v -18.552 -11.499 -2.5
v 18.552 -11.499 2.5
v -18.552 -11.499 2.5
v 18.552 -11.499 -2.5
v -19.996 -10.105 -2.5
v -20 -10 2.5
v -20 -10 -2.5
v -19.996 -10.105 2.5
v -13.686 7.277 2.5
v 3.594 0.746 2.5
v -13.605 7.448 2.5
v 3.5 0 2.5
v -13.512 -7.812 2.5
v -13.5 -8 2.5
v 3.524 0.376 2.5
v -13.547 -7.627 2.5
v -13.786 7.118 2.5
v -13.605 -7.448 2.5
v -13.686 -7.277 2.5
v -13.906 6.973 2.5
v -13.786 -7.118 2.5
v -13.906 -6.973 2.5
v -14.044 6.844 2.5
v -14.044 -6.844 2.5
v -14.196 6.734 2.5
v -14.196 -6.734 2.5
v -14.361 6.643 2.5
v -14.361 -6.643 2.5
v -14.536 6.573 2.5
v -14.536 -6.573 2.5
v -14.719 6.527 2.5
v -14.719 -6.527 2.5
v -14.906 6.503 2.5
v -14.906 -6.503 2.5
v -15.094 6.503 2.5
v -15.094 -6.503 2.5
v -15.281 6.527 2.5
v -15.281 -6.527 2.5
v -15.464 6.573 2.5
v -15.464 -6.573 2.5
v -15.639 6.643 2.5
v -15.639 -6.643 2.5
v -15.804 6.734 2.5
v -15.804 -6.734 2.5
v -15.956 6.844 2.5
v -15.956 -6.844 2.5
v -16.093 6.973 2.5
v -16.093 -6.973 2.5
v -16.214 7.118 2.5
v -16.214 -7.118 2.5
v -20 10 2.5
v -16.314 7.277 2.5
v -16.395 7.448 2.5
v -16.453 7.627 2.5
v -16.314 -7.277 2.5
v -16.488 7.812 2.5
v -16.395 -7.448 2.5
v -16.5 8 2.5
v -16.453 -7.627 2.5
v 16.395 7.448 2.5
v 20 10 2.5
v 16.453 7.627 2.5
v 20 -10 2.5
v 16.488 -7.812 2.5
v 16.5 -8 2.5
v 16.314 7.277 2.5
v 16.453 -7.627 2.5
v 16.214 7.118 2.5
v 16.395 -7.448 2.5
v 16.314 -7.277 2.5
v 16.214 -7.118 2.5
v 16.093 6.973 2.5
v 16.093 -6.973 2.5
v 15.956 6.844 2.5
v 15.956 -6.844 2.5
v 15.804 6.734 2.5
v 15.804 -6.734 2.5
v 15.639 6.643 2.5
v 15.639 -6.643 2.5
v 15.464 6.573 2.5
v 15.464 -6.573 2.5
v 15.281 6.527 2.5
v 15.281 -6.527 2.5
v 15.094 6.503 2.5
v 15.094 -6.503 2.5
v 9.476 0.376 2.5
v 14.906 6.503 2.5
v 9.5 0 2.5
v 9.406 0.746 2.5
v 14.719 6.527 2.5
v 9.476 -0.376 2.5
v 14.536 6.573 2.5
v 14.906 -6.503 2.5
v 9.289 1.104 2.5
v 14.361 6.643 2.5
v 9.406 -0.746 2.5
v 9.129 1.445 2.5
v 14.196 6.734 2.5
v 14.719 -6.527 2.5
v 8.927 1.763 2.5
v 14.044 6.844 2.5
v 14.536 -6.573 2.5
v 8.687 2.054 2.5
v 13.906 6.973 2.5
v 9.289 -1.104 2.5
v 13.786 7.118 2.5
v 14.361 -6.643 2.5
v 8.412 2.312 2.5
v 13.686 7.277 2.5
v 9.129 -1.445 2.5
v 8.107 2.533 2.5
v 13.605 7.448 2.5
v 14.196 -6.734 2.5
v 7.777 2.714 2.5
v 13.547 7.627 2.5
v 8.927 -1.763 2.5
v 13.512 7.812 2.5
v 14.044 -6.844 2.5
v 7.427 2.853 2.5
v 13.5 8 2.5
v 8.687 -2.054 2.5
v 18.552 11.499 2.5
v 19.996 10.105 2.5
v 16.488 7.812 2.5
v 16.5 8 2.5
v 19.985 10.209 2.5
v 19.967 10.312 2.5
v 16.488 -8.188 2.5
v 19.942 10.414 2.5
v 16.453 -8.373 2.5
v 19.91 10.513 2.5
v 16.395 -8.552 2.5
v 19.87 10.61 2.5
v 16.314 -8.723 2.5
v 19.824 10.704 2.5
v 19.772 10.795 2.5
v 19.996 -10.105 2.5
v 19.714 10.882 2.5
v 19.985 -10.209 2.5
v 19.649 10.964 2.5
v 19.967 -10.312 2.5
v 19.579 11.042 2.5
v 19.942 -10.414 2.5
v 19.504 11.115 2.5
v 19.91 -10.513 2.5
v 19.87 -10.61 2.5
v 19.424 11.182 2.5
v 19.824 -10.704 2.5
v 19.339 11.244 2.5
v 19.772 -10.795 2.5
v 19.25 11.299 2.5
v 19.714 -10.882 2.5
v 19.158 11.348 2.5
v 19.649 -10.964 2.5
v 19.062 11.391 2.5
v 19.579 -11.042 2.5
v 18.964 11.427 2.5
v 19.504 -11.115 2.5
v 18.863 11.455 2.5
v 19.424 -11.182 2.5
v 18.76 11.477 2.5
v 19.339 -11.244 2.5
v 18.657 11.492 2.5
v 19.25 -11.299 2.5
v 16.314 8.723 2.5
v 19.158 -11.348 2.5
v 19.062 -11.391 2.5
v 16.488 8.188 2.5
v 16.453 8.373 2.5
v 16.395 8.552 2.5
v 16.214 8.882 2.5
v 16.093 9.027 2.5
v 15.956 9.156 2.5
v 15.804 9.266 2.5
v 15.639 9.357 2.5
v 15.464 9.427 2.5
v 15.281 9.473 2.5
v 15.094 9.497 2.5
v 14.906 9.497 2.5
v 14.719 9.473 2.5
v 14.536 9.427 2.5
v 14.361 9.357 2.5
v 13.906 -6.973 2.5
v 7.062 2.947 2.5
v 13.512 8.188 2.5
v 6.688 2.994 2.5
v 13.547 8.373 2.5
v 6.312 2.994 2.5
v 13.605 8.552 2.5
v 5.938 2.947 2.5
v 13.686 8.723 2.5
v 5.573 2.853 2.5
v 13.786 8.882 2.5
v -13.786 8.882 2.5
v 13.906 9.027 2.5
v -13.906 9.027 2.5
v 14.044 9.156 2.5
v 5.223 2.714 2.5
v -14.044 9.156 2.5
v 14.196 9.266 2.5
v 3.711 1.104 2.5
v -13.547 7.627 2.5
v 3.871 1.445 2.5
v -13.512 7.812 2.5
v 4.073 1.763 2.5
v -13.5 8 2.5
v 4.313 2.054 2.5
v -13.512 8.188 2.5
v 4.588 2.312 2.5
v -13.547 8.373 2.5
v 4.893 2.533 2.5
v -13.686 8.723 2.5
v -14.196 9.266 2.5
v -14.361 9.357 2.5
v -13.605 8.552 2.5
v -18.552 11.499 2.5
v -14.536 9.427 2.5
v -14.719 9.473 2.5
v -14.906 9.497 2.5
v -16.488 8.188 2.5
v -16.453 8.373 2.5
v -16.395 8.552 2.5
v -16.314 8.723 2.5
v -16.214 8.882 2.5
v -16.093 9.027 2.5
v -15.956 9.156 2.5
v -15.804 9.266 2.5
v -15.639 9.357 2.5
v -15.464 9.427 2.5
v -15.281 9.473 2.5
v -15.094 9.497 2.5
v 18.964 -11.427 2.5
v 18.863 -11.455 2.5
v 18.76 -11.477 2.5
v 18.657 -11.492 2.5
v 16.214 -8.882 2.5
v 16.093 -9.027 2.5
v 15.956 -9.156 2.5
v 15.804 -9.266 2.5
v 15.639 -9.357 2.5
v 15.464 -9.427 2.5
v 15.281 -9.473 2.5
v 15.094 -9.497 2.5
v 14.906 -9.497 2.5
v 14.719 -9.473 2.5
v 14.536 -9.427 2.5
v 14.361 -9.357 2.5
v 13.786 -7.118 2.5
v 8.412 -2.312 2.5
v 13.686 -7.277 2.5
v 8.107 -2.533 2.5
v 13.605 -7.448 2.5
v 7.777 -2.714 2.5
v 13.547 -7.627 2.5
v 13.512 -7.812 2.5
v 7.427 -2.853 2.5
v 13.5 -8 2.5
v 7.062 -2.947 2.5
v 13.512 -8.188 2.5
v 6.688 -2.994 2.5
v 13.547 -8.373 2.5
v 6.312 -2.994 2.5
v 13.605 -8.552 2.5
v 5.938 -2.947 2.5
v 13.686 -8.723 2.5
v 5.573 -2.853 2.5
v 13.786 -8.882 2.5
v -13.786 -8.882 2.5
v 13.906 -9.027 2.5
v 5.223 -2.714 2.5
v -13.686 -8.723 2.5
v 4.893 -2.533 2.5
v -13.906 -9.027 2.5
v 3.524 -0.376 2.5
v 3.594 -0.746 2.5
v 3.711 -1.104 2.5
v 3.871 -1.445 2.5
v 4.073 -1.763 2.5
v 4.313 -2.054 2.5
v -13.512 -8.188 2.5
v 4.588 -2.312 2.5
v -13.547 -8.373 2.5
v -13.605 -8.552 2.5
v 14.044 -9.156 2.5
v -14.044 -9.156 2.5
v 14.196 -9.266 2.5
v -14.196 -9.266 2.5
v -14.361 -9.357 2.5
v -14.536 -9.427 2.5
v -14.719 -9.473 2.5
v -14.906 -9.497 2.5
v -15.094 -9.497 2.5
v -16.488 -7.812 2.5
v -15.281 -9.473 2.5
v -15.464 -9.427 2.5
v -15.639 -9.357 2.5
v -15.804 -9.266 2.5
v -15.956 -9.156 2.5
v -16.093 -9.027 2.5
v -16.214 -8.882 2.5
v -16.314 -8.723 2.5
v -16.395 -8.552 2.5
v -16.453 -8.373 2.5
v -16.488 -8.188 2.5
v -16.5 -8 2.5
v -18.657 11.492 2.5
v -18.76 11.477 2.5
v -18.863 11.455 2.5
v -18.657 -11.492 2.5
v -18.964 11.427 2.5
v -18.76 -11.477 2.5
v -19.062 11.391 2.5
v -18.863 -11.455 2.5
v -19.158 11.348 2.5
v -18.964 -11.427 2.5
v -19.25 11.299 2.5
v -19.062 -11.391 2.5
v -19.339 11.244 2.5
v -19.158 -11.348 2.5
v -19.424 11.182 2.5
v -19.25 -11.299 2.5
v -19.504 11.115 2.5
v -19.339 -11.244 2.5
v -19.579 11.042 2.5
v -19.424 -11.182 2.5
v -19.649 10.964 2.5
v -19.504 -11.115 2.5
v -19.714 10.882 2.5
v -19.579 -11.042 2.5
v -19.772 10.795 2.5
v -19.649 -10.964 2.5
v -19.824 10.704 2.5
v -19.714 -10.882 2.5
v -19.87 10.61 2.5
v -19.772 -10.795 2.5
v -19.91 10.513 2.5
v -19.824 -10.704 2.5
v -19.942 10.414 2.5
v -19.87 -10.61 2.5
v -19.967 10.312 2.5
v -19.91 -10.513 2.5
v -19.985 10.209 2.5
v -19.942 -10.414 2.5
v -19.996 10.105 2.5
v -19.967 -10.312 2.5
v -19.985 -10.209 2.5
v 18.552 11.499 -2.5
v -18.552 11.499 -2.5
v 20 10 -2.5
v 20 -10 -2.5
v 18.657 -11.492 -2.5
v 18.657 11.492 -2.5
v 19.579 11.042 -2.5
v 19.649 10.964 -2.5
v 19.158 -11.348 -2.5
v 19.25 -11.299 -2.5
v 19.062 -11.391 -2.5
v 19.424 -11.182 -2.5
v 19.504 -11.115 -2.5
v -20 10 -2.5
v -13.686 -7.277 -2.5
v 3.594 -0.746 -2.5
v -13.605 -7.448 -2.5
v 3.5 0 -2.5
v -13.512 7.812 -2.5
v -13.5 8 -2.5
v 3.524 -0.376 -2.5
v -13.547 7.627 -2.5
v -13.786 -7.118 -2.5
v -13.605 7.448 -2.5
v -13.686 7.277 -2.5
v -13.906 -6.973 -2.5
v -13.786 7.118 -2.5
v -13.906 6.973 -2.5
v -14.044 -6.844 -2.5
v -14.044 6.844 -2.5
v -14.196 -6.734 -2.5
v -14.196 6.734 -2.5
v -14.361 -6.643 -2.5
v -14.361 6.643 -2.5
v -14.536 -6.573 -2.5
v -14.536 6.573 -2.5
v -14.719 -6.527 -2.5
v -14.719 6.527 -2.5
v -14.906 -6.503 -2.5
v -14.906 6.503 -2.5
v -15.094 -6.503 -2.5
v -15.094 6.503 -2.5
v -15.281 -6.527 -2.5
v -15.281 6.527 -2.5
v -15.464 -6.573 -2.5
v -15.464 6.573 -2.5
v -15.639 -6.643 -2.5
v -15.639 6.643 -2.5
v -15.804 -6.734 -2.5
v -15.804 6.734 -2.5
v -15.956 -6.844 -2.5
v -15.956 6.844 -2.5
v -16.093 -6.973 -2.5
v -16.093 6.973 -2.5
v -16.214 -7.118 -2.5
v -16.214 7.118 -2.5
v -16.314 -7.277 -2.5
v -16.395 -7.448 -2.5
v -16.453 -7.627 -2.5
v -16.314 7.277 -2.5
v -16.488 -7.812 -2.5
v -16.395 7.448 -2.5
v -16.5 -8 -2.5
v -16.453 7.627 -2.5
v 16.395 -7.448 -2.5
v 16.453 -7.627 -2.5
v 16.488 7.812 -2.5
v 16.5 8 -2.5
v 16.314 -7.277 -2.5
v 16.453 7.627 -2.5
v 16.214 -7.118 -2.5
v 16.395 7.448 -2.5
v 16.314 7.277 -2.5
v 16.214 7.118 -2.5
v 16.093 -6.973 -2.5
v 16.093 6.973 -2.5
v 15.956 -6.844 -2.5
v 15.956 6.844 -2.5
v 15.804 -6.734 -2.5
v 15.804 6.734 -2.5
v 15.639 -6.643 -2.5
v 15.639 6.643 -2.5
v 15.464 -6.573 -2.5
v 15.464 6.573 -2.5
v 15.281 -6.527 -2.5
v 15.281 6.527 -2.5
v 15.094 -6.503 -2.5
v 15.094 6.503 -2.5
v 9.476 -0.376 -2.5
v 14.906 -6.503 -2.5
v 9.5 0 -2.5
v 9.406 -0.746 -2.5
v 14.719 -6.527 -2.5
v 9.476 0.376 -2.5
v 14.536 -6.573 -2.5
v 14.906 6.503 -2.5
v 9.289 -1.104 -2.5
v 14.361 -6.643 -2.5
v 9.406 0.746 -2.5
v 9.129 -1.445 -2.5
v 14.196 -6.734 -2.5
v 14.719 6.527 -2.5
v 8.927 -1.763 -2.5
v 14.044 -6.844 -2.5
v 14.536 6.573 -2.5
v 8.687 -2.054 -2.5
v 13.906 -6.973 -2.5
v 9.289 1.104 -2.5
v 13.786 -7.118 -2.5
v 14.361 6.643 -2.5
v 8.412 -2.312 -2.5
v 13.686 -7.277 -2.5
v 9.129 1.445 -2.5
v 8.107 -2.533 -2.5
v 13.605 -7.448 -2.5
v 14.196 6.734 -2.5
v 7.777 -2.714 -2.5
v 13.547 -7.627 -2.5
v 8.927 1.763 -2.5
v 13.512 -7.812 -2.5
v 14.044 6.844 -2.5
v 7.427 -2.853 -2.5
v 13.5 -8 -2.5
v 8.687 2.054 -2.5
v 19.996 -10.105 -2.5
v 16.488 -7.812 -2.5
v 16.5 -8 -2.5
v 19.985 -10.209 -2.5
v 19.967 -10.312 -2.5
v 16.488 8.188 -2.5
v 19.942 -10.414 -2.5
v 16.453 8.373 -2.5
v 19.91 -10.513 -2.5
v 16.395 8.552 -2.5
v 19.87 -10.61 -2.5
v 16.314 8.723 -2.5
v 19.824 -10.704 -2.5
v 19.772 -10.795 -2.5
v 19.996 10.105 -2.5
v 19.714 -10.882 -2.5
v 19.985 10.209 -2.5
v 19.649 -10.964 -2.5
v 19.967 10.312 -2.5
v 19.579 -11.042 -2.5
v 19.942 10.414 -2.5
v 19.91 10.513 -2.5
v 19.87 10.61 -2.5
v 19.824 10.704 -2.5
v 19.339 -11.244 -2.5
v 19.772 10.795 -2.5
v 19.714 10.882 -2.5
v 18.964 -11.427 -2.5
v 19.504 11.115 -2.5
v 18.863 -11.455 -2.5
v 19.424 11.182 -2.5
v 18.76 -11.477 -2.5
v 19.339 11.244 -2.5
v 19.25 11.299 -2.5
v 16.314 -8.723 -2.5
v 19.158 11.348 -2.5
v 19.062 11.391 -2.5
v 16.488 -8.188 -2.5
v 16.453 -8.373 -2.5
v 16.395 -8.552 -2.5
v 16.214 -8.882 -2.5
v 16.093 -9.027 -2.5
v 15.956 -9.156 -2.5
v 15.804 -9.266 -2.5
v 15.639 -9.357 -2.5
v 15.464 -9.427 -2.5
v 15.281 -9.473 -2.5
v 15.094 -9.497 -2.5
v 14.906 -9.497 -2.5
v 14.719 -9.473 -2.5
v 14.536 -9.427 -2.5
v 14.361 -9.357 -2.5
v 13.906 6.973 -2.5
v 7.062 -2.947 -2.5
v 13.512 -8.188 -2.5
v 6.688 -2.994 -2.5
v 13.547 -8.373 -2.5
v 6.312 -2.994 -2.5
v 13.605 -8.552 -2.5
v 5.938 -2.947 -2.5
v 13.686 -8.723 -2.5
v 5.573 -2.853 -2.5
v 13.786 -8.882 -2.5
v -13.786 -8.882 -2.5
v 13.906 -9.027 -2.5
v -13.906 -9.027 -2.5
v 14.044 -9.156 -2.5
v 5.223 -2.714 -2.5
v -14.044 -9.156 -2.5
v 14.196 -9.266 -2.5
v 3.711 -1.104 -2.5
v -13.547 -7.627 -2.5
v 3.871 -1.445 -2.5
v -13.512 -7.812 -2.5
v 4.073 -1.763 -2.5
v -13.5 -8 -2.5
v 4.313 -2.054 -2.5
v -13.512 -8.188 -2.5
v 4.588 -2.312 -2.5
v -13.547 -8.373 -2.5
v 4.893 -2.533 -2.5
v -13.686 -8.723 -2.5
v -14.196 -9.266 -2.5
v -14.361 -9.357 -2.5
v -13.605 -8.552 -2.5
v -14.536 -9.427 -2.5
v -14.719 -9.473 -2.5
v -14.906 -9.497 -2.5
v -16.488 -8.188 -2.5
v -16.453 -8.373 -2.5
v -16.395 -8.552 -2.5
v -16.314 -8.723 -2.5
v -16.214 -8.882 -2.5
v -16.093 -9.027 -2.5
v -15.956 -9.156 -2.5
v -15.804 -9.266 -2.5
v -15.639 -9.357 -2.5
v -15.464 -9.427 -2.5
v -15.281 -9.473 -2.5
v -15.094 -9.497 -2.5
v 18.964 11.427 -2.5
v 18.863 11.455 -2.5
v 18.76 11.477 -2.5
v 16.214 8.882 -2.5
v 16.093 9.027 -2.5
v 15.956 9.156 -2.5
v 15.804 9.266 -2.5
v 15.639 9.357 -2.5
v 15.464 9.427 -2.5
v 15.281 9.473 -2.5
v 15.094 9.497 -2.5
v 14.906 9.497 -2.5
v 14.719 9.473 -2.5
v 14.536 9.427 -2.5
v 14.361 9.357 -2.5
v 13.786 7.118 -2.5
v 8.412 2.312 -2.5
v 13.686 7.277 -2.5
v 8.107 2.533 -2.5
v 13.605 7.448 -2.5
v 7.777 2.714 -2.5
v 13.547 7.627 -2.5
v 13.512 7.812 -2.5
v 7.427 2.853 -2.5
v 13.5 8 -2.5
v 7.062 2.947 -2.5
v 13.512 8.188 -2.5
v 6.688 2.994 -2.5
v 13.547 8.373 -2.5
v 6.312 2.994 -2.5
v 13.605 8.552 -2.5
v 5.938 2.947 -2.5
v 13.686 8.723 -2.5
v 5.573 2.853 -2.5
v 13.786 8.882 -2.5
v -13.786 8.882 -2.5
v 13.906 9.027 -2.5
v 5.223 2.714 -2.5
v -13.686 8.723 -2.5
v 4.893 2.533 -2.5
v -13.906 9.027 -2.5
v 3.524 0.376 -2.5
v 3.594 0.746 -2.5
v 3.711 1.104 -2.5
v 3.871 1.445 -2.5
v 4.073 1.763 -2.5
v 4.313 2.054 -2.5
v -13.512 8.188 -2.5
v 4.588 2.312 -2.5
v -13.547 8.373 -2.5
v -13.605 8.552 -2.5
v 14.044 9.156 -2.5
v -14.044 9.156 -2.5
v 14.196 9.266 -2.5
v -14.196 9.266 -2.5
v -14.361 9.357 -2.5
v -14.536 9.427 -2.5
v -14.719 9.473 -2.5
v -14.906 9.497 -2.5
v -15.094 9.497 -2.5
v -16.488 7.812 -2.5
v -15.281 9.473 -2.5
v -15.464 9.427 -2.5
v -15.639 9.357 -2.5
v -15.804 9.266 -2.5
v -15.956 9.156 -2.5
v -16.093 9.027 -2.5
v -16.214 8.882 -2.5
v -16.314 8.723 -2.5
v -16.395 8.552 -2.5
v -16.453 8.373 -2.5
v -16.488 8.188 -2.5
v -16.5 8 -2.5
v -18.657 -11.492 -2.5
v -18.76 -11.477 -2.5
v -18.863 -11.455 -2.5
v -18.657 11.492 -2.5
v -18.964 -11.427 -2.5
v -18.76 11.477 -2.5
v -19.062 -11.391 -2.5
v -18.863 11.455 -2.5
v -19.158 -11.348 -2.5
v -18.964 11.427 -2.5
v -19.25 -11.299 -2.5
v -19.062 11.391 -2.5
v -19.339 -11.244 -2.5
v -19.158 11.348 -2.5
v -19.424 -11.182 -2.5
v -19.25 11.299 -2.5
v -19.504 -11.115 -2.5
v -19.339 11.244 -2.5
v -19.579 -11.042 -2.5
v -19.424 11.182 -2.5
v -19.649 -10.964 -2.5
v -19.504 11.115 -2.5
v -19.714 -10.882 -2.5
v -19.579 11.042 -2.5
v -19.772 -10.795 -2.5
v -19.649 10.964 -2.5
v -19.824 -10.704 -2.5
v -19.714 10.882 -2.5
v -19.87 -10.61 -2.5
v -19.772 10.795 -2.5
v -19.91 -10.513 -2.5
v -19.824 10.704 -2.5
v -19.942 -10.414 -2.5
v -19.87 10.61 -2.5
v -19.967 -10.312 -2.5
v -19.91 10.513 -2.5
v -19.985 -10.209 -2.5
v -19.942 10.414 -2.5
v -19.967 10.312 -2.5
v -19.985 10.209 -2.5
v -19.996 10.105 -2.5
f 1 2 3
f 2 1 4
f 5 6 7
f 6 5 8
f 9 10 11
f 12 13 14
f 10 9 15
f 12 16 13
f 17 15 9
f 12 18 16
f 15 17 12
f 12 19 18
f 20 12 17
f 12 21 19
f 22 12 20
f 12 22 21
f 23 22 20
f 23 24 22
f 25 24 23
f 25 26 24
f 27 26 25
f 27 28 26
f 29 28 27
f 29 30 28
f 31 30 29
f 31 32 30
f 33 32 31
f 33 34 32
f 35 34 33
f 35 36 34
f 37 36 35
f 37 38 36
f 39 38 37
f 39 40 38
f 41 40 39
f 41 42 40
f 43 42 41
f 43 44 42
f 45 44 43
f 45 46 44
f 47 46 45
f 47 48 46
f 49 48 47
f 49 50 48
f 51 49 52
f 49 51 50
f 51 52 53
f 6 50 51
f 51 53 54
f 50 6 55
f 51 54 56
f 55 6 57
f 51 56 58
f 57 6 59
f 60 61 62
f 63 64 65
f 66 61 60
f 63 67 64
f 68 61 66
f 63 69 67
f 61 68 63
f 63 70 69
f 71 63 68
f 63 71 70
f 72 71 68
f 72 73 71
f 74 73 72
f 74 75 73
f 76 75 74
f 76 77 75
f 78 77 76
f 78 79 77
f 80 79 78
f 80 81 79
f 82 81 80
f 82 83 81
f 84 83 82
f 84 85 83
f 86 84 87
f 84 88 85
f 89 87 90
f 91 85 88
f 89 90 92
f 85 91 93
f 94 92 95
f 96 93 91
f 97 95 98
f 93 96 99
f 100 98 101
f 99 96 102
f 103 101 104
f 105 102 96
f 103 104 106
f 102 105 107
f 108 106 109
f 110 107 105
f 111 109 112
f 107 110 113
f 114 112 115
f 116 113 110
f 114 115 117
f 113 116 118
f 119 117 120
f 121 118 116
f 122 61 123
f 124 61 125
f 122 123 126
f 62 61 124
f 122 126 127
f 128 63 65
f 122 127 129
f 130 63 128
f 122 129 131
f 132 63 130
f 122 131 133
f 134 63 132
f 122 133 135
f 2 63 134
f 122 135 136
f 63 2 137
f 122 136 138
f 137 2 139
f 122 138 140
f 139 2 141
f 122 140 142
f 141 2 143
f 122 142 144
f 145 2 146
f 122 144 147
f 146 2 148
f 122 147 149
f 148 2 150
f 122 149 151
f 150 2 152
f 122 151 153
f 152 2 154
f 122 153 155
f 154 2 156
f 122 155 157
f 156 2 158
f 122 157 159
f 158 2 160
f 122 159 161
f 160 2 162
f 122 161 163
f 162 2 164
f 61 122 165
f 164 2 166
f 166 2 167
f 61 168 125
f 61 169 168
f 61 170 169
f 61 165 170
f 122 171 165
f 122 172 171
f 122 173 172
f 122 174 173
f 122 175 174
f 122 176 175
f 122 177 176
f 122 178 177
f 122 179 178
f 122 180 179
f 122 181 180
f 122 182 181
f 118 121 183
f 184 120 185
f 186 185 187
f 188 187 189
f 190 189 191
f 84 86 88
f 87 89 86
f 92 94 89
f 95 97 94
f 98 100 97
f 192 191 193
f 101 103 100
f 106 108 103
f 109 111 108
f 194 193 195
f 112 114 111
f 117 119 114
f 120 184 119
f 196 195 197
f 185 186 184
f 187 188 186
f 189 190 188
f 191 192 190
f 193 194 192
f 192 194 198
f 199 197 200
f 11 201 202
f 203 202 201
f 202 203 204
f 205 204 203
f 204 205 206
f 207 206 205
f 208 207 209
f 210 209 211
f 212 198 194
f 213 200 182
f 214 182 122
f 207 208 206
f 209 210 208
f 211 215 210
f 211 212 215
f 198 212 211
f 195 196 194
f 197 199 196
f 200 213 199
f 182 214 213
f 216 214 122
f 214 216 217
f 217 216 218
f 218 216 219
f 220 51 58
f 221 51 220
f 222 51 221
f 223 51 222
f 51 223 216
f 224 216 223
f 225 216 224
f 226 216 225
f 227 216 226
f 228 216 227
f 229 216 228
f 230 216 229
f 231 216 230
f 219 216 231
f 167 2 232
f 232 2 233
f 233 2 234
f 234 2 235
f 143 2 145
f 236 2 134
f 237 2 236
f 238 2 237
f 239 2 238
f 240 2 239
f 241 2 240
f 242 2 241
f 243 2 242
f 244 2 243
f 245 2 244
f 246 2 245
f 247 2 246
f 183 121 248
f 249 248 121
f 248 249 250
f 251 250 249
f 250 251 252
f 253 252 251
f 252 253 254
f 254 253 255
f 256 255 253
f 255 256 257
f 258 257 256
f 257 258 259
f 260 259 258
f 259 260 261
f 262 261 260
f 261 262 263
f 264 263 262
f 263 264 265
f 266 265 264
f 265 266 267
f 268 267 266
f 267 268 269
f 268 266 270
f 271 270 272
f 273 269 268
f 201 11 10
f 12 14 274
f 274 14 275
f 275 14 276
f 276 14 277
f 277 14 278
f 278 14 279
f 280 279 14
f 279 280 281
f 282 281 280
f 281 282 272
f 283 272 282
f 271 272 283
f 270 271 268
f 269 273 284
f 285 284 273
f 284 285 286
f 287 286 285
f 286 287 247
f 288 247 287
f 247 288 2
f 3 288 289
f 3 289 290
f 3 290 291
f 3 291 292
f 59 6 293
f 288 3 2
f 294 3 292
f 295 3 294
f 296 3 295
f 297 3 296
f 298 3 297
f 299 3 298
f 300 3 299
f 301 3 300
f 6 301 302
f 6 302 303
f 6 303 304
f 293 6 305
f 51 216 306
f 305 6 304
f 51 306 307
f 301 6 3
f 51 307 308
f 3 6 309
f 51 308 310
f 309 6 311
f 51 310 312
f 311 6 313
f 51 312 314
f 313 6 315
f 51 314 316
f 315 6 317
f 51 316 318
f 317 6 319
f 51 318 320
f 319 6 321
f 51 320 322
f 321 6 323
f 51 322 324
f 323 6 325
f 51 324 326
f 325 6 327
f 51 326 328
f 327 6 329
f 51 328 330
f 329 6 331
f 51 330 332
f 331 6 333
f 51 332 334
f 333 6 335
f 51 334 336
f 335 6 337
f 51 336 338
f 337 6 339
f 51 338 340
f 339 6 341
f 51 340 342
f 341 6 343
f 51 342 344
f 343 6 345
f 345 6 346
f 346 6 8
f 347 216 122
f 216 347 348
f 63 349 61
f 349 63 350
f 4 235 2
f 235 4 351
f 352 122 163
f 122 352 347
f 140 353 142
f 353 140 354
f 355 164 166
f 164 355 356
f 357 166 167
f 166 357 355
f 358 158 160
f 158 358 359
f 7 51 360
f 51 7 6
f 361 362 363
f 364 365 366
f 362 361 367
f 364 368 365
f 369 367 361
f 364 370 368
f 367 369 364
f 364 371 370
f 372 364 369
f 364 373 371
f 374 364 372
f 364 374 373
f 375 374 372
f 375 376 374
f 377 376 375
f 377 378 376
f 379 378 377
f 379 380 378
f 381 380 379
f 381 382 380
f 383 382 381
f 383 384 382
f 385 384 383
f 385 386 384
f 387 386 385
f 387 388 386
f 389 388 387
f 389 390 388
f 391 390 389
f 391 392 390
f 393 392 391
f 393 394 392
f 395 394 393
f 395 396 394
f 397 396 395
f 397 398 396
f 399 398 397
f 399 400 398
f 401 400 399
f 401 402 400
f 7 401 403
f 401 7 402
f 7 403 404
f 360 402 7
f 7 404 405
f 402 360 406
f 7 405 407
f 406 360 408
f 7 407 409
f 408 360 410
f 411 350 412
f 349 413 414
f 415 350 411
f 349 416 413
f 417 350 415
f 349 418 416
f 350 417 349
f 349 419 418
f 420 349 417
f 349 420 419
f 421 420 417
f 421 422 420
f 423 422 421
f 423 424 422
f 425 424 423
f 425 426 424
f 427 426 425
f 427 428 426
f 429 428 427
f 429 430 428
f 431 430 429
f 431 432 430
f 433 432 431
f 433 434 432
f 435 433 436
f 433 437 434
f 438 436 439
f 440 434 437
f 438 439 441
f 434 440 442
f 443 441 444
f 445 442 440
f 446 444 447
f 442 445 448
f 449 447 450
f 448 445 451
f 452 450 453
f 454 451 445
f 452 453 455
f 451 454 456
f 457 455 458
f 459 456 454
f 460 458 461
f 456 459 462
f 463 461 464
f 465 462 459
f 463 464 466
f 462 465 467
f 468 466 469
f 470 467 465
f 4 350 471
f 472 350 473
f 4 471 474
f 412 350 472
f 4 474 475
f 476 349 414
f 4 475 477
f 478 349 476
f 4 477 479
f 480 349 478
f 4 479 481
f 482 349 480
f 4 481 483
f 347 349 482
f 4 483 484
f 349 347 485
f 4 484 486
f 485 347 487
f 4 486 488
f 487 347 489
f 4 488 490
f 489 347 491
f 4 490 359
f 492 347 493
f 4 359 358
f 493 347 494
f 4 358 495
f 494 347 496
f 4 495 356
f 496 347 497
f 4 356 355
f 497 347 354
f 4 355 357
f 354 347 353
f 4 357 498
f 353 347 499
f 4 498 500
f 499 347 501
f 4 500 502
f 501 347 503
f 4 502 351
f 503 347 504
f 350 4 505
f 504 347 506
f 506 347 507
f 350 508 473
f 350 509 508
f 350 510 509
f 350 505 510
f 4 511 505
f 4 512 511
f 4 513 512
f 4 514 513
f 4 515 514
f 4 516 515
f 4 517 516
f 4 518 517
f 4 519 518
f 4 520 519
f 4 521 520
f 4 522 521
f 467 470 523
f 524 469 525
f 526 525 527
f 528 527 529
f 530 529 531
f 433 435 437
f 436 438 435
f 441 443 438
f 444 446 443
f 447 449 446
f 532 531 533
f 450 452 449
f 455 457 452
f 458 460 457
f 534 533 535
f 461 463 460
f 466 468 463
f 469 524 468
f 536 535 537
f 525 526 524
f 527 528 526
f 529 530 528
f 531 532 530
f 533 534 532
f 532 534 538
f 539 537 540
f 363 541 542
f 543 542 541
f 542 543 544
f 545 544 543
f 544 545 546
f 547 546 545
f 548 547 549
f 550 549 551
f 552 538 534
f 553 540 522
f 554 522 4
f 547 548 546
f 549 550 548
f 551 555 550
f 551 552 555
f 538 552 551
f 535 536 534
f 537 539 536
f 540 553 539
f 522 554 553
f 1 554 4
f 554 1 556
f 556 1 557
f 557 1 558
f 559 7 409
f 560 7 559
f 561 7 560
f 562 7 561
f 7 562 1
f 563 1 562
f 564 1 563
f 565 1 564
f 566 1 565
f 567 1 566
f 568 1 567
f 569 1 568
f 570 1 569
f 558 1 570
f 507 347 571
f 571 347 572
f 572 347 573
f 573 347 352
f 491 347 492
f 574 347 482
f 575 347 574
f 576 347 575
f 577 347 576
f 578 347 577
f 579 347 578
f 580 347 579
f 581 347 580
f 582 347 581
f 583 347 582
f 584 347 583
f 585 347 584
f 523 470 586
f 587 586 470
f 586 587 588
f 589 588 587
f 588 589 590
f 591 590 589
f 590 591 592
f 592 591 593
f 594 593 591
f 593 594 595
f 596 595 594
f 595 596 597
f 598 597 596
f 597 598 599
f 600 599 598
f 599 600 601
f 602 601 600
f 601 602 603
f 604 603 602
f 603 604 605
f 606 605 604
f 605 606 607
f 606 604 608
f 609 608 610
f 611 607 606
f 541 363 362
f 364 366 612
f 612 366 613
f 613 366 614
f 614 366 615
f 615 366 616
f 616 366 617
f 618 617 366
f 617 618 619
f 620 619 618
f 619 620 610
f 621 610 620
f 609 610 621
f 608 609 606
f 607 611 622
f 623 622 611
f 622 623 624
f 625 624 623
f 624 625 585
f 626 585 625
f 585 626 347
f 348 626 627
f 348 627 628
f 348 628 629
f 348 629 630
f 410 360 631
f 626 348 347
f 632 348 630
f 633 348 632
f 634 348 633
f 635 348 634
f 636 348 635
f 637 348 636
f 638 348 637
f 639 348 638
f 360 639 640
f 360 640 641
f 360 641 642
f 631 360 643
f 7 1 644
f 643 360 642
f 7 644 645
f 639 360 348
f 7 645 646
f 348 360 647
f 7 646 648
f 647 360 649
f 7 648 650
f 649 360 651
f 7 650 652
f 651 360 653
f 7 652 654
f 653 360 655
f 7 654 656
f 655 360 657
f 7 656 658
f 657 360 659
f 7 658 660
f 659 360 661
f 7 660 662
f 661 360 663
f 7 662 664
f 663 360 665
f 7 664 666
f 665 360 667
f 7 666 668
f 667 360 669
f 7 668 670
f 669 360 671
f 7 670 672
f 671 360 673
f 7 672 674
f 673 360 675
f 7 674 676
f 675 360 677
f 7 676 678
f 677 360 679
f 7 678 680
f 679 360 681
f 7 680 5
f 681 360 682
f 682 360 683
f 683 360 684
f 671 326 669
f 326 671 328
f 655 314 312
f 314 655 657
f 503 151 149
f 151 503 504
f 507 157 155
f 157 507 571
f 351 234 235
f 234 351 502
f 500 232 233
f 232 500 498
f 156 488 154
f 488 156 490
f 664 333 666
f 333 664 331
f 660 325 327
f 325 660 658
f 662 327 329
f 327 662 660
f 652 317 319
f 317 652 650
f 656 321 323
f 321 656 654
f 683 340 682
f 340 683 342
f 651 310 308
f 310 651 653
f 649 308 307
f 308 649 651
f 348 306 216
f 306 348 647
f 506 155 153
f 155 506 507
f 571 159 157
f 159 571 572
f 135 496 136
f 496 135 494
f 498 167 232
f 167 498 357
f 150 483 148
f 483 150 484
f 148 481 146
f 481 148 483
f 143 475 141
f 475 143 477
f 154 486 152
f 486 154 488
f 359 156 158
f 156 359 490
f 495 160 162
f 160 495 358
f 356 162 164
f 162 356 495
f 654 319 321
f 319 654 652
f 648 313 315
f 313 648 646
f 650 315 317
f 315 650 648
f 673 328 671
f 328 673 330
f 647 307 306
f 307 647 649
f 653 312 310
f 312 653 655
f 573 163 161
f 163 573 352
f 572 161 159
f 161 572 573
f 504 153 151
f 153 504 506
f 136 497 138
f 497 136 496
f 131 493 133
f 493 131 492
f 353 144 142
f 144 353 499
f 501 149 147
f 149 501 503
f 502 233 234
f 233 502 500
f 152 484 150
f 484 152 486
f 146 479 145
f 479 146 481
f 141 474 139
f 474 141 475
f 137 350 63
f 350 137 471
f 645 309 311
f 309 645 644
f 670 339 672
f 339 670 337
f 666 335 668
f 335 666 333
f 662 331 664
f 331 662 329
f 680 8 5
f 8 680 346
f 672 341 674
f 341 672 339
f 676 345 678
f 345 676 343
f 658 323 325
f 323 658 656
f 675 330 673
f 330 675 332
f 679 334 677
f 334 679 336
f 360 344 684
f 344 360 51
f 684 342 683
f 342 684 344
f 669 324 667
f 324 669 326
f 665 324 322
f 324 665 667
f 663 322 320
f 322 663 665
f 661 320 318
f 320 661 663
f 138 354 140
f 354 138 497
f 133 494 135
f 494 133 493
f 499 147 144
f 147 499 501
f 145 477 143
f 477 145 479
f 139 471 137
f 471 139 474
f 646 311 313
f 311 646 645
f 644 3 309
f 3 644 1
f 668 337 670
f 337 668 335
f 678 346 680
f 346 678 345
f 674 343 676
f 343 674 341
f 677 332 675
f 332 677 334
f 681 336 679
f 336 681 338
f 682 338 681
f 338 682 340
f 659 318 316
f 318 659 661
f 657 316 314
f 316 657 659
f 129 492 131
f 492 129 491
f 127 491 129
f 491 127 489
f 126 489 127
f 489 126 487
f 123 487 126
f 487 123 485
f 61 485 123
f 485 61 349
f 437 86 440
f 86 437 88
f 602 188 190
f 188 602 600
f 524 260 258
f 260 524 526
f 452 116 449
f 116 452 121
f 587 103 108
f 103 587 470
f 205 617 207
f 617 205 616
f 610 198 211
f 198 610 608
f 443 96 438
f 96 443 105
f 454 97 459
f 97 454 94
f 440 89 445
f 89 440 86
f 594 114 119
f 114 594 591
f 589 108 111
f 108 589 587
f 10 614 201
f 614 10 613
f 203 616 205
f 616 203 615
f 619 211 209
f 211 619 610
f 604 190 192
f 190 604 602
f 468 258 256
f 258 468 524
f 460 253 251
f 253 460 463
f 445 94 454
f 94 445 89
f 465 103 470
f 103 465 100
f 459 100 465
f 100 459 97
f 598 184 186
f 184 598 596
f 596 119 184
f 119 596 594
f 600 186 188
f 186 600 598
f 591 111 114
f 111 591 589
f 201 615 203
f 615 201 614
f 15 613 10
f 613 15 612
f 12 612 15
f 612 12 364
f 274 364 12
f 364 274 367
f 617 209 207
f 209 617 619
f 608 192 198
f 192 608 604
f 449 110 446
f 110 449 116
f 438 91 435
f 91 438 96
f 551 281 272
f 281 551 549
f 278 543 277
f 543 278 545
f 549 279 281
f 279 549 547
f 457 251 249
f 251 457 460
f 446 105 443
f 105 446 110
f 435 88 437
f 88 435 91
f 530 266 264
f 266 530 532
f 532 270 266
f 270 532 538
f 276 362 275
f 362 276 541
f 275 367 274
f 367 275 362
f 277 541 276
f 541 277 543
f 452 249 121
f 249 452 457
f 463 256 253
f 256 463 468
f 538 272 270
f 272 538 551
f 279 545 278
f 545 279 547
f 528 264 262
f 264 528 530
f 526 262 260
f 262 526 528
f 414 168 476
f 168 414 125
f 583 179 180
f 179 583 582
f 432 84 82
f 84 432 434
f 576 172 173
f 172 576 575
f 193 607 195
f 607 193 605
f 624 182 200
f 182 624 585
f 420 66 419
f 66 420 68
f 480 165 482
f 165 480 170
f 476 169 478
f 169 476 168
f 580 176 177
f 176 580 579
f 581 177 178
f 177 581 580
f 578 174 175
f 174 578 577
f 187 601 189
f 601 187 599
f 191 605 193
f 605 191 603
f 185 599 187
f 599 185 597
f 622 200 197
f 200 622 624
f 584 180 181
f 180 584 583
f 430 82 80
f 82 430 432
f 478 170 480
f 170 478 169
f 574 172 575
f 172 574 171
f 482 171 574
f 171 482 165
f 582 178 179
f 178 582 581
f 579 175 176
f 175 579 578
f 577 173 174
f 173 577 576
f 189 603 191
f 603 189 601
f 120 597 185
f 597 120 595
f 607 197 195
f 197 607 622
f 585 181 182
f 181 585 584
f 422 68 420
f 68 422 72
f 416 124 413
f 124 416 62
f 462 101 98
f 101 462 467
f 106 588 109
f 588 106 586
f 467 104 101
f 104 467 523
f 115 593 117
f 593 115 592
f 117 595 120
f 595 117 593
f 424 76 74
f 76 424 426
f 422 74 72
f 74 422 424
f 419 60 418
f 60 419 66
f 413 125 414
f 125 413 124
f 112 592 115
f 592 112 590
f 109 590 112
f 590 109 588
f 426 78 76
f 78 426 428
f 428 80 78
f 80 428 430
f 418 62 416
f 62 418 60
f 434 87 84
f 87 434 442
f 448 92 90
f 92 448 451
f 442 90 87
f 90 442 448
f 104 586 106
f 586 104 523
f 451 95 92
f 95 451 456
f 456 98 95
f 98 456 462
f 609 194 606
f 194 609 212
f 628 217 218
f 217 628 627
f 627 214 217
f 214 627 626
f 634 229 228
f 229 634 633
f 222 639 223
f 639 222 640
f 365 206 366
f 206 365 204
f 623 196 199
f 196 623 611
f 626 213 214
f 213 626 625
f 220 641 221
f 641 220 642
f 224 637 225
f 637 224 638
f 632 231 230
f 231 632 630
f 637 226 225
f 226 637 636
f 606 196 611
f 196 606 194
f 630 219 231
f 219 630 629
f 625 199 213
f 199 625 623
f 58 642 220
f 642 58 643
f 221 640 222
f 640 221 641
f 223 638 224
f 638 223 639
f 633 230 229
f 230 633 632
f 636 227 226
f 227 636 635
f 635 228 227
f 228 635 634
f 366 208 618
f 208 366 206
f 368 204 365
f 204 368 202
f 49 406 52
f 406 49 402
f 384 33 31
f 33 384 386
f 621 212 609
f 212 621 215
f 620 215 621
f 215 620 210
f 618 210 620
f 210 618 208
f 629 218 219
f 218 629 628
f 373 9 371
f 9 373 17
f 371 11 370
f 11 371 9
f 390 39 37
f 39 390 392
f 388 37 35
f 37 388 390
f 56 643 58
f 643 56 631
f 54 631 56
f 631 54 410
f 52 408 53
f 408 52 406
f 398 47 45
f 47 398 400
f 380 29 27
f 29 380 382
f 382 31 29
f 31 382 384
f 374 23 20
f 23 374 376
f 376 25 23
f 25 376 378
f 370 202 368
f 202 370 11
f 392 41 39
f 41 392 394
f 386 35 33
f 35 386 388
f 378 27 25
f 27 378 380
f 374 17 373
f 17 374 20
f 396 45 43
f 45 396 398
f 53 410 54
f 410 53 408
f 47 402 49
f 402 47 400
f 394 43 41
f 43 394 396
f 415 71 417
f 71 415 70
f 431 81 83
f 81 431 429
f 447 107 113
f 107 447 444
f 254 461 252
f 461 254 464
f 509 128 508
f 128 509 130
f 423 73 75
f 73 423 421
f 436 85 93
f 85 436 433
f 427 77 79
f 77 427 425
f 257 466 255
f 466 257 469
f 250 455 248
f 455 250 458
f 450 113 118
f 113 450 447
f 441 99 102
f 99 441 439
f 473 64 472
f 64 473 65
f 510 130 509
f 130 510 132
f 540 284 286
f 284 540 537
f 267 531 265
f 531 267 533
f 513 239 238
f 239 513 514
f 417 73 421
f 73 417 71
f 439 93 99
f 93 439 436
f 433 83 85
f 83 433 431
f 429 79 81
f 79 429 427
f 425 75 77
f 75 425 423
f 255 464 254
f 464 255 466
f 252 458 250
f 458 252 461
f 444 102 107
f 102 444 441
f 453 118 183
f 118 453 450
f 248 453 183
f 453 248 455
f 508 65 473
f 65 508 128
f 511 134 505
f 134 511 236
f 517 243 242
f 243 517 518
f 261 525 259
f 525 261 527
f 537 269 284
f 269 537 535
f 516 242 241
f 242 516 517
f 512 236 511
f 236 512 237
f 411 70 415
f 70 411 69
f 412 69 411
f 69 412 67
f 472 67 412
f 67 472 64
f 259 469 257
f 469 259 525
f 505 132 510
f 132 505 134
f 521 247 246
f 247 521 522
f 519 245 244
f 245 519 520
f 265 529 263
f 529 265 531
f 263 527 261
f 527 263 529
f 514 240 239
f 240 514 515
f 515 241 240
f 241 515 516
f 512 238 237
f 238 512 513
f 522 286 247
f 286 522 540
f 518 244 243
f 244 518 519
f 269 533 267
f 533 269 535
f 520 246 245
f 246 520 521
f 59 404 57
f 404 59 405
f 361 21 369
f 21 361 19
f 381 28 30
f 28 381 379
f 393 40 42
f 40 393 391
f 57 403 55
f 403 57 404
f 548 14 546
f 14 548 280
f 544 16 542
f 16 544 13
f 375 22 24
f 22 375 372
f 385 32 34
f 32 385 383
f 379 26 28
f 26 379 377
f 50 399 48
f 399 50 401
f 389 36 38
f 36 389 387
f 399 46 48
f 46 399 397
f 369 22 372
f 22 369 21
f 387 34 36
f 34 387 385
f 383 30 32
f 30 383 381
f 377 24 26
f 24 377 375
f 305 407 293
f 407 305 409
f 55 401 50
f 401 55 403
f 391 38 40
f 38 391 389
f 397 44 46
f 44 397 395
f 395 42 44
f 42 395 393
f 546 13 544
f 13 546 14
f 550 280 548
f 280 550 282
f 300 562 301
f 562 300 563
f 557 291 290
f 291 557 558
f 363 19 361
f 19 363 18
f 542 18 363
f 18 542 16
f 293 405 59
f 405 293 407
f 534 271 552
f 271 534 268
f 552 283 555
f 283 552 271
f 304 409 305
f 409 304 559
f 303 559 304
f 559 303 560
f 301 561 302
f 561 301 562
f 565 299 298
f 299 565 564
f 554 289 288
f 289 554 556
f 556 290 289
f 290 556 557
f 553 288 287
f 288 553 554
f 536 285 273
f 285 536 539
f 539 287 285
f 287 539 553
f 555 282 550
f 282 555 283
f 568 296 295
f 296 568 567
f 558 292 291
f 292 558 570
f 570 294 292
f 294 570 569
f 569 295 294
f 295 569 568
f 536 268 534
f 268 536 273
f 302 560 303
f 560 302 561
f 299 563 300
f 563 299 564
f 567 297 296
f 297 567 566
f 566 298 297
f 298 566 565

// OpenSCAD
// file: ../../../quick_modules.scad
// Quick Modules

module roundedRect(xWidth, yDepth, zHeight, diam){
    hull(){
        translate([diam/2, diam/2, 0]) cylinder(d=diam, h=zHeight, $fn=90);
        translate([xWidth-(diam/2), diam/2, 0]) cylinder(d=diam, h=zHeight, $fn=90);
        
        translate([diam/2, yDepth-(diam/2), 0]) cylinder(d=diam, h=zHeight, $fn=90);
        translate([xWidth-(diam/2), yDepth-(diam/2), 0]) cylinder(d=diam, h=zHeight, $fn=90);
    }
}

module centeredRoundedRect(xWidth, yDepth, zHeight, diam){
    translate([-xWidth/2, -yDepth/2, -zHeight/2]) roundedRect(xWidth, yDepth, zHeight, diam);
}

//translate([25, 25, 0]) roundedRect(10, 10, 10, 1);
//centeredRoundedRect(10, 10, 10, 1);
// main file
// Bowden adapter for printrbot alu extruder

screwDiam = 3;
thickness = 5;
holeRes = 50;
pushfitDiam = 6; //6 for M6 pushfit

use <../../../quick_modules.scad>;

union(){
    difference(){
        centeredRoundedRect(40,23,thickness,3);
        
        // pushfit hole
        translate([6.5,0,-1]) cylinder(d=pushfitDiam,h=thickness*2,$fn=holeRes,center=true);
        
        // screw holes
        translate([15,8,-1]) cylinder(d=screwDiam,h=thickness*2,$fn=holeRes,center=true);
        translate([-15,8,-1]) cylinder(d=screwDiam,h=thickness*2,$fn=holeRes,center=true);
        translate([15,-8,-1]) cylinder(d=screwDiam,h=thickness*2,$fn=holeRes,center=true);
        translate([-15,-8,-1]) cylinder(d=screwDiam,h=thickness*2,$fn=holeRes,center=true);
    }
}
